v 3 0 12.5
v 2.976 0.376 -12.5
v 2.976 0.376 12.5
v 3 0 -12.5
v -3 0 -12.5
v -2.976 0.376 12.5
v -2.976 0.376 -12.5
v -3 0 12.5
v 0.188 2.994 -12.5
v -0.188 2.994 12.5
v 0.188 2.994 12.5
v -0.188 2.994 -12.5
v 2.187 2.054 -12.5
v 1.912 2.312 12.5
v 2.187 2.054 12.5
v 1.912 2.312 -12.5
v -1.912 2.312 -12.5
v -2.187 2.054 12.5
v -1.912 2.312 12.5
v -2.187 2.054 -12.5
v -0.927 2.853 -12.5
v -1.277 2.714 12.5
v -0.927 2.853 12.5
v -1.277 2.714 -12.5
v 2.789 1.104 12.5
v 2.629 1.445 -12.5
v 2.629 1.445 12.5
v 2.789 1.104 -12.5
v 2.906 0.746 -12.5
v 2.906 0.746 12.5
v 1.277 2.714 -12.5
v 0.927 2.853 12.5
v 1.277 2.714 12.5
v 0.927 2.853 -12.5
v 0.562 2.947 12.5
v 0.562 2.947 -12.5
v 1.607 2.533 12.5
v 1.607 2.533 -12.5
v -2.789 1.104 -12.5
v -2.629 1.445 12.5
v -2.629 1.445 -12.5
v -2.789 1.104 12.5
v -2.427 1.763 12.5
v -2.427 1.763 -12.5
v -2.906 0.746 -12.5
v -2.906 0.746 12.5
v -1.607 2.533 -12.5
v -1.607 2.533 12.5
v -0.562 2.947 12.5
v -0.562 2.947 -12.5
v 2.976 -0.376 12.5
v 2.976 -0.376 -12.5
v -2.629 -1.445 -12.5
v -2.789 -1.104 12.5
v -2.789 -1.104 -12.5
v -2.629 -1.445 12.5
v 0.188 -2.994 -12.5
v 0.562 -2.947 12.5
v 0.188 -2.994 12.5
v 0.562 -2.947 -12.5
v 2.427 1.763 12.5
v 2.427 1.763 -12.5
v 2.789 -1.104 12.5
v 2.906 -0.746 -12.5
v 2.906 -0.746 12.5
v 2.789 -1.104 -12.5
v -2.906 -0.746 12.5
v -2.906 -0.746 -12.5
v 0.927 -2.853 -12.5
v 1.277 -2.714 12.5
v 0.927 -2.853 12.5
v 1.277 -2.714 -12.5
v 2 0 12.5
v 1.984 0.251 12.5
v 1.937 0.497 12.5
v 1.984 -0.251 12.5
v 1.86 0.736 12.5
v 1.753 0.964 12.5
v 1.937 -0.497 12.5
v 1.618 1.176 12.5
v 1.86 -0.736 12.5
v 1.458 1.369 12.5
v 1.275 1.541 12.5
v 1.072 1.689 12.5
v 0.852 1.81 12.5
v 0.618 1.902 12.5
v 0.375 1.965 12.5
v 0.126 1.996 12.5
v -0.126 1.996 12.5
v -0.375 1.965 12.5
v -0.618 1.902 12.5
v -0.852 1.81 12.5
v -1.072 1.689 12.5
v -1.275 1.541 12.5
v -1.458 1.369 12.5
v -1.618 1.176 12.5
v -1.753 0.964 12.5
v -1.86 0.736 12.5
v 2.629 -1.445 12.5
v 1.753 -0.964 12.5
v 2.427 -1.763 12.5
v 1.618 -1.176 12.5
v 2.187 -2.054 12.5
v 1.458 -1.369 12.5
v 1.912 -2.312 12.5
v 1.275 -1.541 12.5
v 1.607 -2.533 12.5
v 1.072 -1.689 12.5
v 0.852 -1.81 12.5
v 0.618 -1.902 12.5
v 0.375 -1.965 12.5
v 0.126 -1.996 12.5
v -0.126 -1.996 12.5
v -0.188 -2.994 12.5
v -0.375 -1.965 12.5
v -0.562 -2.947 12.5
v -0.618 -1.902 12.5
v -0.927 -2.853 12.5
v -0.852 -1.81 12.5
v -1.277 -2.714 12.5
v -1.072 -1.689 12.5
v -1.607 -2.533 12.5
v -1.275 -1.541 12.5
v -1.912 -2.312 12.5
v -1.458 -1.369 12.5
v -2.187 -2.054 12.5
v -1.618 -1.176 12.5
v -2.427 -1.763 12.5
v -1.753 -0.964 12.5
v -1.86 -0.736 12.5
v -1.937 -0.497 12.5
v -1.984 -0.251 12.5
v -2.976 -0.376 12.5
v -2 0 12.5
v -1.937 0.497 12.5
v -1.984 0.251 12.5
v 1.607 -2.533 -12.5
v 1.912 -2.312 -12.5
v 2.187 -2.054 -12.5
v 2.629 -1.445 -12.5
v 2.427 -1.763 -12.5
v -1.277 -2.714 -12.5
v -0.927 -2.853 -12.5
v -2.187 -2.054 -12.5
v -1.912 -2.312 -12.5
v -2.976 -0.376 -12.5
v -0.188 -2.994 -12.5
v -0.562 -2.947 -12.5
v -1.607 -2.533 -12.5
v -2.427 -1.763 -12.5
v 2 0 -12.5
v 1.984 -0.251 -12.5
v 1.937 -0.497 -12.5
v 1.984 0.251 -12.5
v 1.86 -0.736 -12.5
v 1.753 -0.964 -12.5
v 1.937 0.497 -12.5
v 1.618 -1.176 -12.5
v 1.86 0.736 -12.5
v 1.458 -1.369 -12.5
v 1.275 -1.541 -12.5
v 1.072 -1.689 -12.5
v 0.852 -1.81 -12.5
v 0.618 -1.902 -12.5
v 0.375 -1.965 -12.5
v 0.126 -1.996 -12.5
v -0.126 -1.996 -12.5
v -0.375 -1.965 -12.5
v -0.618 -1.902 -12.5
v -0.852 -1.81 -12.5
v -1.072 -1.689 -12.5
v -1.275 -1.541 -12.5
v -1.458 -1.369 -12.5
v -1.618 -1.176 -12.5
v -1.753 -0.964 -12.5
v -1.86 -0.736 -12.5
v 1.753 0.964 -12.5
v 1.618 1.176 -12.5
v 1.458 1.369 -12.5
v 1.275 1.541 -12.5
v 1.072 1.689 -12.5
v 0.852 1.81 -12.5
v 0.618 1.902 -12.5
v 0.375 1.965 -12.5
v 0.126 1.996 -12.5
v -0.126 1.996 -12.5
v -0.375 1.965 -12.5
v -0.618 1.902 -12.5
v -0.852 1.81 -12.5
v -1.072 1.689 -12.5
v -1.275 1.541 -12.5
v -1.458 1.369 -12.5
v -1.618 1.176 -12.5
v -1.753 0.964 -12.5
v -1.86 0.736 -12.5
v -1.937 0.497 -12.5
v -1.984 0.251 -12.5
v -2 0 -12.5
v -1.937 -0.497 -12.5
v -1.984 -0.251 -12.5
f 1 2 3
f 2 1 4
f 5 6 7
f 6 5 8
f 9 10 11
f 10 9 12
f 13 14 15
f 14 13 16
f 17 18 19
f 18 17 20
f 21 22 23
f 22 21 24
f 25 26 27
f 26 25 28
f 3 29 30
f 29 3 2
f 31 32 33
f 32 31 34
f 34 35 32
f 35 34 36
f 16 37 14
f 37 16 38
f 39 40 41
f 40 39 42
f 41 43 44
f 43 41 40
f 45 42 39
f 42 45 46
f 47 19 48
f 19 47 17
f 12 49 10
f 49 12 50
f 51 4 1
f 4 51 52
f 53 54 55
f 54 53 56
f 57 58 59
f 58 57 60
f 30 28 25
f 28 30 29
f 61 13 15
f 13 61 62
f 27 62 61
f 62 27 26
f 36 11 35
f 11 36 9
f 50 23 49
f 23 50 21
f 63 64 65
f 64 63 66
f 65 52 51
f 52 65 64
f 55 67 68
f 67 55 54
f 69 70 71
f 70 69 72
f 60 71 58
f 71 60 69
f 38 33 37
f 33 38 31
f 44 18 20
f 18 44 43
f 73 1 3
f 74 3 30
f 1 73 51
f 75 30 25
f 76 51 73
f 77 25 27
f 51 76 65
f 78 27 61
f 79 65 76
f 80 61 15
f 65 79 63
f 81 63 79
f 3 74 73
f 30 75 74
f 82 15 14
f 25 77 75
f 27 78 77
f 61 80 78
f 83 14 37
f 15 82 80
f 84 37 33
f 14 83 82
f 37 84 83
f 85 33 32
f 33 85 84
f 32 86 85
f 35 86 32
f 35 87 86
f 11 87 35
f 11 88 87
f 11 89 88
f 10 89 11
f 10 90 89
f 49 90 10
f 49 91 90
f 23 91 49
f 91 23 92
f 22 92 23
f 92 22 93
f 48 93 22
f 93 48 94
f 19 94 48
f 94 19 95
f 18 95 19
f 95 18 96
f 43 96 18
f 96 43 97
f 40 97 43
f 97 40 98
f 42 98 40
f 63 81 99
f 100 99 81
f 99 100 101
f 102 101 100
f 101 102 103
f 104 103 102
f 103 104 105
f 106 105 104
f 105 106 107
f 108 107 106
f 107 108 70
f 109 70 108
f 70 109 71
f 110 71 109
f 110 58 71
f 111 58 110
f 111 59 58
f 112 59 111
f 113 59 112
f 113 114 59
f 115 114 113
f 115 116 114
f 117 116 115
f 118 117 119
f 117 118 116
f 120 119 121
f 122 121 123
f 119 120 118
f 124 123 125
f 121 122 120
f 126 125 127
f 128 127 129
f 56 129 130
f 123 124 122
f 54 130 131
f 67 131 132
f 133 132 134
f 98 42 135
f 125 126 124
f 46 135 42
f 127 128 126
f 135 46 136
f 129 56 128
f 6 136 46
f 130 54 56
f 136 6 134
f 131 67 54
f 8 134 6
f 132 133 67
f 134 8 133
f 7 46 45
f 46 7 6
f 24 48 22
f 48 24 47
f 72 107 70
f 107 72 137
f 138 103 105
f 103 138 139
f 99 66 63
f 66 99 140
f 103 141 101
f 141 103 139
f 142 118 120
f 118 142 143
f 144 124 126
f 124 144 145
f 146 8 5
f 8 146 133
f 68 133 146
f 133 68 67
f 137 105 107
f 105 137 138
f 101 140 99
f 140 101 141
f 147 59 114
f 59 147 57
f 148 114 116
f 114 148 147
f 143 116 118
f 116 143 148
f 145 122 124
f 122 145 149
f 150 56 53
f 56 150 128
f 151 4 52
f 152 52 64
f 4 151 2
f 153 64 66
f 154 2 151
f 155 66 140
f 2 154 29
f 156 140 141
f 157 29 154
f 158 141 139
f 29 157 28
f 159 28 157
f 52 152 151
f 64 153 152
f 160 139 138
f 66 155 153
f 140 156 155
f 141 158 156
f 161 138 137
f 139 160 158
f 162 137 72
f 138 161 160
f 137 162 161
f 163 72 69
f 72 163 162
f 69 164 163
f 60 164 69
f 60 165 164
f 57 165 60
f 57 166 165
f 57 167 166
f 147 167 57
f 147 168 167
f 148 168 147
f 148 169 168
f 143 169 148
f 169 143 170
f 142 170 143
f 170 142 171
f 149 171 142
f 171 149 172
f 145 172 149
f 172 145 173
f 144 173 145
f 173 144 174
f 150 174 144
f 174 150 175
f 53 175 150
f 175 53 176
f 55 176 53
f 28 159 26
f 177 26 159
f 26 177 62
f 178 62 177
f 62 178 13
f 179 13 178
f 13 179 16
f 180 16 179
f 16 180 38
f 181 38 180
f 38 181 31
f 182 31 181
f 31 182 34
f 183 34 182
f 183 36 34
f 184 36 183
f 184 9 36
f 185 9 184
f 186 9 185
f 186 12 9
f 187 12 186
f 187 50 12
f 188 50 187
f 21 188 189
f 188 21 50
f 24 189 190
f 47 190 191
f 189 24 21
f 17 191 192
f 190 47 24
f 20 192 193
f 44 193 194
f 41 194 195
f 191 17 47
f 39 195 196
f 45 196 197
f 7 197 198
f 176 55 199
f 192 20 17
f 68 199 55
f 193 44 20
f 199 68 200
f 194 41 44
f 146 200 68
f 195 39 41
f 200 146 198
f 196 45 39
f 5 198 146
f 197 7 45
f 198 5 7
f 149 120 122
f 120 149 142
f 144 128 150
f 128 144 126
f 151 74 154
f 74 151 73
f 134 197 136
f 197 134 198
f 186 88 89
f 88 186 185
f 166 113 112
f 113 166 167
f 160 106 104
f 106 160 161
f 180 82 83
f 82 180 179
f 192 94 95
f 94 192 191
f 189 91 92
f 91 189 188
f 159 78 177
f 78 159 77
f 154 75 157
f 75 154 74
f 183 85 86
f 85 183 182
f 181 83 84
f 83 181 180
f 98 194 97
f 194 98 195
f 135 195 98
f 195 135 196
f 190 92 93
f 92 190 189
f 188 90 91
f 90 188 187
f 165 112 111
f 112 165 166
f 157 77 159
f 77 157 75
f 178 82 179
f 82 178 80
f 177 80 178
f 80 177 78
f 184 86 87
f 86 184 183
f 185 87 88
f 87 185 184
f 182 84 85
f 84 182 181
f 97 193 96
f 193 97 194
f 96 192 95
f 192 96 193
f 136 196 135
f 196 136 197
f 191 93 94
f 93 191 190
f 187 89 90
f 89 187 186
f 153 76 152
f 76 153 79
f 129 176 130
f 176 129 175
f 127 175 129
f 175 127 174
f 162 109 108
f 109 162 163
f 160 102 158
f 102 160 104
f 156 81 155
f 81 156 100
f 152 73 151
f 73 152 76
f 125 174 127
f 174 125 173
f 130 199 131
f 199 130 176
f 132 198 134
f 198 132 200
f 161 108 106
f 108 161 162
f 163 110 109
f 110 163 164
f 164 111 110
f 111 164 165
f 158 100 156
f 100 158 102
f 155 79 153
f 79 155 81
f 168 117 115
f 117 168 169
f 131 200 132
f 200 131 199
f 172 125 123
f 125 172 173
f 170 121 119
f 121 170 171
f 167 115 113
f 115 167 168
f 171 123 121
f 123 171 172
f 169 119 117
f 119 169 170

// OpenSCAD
$fn = 50;


difference() {
	union() {
		translate(v = [0, 0, -12.5000000000]) {
			cylinder(h = 25, r = 3.0000000000);
		}
	}
	union() {
		translate(v = [0, 0, -100.0000000000]) {
			cylinder(h = 200, r = 2.0000000000);
		}
	}
}
